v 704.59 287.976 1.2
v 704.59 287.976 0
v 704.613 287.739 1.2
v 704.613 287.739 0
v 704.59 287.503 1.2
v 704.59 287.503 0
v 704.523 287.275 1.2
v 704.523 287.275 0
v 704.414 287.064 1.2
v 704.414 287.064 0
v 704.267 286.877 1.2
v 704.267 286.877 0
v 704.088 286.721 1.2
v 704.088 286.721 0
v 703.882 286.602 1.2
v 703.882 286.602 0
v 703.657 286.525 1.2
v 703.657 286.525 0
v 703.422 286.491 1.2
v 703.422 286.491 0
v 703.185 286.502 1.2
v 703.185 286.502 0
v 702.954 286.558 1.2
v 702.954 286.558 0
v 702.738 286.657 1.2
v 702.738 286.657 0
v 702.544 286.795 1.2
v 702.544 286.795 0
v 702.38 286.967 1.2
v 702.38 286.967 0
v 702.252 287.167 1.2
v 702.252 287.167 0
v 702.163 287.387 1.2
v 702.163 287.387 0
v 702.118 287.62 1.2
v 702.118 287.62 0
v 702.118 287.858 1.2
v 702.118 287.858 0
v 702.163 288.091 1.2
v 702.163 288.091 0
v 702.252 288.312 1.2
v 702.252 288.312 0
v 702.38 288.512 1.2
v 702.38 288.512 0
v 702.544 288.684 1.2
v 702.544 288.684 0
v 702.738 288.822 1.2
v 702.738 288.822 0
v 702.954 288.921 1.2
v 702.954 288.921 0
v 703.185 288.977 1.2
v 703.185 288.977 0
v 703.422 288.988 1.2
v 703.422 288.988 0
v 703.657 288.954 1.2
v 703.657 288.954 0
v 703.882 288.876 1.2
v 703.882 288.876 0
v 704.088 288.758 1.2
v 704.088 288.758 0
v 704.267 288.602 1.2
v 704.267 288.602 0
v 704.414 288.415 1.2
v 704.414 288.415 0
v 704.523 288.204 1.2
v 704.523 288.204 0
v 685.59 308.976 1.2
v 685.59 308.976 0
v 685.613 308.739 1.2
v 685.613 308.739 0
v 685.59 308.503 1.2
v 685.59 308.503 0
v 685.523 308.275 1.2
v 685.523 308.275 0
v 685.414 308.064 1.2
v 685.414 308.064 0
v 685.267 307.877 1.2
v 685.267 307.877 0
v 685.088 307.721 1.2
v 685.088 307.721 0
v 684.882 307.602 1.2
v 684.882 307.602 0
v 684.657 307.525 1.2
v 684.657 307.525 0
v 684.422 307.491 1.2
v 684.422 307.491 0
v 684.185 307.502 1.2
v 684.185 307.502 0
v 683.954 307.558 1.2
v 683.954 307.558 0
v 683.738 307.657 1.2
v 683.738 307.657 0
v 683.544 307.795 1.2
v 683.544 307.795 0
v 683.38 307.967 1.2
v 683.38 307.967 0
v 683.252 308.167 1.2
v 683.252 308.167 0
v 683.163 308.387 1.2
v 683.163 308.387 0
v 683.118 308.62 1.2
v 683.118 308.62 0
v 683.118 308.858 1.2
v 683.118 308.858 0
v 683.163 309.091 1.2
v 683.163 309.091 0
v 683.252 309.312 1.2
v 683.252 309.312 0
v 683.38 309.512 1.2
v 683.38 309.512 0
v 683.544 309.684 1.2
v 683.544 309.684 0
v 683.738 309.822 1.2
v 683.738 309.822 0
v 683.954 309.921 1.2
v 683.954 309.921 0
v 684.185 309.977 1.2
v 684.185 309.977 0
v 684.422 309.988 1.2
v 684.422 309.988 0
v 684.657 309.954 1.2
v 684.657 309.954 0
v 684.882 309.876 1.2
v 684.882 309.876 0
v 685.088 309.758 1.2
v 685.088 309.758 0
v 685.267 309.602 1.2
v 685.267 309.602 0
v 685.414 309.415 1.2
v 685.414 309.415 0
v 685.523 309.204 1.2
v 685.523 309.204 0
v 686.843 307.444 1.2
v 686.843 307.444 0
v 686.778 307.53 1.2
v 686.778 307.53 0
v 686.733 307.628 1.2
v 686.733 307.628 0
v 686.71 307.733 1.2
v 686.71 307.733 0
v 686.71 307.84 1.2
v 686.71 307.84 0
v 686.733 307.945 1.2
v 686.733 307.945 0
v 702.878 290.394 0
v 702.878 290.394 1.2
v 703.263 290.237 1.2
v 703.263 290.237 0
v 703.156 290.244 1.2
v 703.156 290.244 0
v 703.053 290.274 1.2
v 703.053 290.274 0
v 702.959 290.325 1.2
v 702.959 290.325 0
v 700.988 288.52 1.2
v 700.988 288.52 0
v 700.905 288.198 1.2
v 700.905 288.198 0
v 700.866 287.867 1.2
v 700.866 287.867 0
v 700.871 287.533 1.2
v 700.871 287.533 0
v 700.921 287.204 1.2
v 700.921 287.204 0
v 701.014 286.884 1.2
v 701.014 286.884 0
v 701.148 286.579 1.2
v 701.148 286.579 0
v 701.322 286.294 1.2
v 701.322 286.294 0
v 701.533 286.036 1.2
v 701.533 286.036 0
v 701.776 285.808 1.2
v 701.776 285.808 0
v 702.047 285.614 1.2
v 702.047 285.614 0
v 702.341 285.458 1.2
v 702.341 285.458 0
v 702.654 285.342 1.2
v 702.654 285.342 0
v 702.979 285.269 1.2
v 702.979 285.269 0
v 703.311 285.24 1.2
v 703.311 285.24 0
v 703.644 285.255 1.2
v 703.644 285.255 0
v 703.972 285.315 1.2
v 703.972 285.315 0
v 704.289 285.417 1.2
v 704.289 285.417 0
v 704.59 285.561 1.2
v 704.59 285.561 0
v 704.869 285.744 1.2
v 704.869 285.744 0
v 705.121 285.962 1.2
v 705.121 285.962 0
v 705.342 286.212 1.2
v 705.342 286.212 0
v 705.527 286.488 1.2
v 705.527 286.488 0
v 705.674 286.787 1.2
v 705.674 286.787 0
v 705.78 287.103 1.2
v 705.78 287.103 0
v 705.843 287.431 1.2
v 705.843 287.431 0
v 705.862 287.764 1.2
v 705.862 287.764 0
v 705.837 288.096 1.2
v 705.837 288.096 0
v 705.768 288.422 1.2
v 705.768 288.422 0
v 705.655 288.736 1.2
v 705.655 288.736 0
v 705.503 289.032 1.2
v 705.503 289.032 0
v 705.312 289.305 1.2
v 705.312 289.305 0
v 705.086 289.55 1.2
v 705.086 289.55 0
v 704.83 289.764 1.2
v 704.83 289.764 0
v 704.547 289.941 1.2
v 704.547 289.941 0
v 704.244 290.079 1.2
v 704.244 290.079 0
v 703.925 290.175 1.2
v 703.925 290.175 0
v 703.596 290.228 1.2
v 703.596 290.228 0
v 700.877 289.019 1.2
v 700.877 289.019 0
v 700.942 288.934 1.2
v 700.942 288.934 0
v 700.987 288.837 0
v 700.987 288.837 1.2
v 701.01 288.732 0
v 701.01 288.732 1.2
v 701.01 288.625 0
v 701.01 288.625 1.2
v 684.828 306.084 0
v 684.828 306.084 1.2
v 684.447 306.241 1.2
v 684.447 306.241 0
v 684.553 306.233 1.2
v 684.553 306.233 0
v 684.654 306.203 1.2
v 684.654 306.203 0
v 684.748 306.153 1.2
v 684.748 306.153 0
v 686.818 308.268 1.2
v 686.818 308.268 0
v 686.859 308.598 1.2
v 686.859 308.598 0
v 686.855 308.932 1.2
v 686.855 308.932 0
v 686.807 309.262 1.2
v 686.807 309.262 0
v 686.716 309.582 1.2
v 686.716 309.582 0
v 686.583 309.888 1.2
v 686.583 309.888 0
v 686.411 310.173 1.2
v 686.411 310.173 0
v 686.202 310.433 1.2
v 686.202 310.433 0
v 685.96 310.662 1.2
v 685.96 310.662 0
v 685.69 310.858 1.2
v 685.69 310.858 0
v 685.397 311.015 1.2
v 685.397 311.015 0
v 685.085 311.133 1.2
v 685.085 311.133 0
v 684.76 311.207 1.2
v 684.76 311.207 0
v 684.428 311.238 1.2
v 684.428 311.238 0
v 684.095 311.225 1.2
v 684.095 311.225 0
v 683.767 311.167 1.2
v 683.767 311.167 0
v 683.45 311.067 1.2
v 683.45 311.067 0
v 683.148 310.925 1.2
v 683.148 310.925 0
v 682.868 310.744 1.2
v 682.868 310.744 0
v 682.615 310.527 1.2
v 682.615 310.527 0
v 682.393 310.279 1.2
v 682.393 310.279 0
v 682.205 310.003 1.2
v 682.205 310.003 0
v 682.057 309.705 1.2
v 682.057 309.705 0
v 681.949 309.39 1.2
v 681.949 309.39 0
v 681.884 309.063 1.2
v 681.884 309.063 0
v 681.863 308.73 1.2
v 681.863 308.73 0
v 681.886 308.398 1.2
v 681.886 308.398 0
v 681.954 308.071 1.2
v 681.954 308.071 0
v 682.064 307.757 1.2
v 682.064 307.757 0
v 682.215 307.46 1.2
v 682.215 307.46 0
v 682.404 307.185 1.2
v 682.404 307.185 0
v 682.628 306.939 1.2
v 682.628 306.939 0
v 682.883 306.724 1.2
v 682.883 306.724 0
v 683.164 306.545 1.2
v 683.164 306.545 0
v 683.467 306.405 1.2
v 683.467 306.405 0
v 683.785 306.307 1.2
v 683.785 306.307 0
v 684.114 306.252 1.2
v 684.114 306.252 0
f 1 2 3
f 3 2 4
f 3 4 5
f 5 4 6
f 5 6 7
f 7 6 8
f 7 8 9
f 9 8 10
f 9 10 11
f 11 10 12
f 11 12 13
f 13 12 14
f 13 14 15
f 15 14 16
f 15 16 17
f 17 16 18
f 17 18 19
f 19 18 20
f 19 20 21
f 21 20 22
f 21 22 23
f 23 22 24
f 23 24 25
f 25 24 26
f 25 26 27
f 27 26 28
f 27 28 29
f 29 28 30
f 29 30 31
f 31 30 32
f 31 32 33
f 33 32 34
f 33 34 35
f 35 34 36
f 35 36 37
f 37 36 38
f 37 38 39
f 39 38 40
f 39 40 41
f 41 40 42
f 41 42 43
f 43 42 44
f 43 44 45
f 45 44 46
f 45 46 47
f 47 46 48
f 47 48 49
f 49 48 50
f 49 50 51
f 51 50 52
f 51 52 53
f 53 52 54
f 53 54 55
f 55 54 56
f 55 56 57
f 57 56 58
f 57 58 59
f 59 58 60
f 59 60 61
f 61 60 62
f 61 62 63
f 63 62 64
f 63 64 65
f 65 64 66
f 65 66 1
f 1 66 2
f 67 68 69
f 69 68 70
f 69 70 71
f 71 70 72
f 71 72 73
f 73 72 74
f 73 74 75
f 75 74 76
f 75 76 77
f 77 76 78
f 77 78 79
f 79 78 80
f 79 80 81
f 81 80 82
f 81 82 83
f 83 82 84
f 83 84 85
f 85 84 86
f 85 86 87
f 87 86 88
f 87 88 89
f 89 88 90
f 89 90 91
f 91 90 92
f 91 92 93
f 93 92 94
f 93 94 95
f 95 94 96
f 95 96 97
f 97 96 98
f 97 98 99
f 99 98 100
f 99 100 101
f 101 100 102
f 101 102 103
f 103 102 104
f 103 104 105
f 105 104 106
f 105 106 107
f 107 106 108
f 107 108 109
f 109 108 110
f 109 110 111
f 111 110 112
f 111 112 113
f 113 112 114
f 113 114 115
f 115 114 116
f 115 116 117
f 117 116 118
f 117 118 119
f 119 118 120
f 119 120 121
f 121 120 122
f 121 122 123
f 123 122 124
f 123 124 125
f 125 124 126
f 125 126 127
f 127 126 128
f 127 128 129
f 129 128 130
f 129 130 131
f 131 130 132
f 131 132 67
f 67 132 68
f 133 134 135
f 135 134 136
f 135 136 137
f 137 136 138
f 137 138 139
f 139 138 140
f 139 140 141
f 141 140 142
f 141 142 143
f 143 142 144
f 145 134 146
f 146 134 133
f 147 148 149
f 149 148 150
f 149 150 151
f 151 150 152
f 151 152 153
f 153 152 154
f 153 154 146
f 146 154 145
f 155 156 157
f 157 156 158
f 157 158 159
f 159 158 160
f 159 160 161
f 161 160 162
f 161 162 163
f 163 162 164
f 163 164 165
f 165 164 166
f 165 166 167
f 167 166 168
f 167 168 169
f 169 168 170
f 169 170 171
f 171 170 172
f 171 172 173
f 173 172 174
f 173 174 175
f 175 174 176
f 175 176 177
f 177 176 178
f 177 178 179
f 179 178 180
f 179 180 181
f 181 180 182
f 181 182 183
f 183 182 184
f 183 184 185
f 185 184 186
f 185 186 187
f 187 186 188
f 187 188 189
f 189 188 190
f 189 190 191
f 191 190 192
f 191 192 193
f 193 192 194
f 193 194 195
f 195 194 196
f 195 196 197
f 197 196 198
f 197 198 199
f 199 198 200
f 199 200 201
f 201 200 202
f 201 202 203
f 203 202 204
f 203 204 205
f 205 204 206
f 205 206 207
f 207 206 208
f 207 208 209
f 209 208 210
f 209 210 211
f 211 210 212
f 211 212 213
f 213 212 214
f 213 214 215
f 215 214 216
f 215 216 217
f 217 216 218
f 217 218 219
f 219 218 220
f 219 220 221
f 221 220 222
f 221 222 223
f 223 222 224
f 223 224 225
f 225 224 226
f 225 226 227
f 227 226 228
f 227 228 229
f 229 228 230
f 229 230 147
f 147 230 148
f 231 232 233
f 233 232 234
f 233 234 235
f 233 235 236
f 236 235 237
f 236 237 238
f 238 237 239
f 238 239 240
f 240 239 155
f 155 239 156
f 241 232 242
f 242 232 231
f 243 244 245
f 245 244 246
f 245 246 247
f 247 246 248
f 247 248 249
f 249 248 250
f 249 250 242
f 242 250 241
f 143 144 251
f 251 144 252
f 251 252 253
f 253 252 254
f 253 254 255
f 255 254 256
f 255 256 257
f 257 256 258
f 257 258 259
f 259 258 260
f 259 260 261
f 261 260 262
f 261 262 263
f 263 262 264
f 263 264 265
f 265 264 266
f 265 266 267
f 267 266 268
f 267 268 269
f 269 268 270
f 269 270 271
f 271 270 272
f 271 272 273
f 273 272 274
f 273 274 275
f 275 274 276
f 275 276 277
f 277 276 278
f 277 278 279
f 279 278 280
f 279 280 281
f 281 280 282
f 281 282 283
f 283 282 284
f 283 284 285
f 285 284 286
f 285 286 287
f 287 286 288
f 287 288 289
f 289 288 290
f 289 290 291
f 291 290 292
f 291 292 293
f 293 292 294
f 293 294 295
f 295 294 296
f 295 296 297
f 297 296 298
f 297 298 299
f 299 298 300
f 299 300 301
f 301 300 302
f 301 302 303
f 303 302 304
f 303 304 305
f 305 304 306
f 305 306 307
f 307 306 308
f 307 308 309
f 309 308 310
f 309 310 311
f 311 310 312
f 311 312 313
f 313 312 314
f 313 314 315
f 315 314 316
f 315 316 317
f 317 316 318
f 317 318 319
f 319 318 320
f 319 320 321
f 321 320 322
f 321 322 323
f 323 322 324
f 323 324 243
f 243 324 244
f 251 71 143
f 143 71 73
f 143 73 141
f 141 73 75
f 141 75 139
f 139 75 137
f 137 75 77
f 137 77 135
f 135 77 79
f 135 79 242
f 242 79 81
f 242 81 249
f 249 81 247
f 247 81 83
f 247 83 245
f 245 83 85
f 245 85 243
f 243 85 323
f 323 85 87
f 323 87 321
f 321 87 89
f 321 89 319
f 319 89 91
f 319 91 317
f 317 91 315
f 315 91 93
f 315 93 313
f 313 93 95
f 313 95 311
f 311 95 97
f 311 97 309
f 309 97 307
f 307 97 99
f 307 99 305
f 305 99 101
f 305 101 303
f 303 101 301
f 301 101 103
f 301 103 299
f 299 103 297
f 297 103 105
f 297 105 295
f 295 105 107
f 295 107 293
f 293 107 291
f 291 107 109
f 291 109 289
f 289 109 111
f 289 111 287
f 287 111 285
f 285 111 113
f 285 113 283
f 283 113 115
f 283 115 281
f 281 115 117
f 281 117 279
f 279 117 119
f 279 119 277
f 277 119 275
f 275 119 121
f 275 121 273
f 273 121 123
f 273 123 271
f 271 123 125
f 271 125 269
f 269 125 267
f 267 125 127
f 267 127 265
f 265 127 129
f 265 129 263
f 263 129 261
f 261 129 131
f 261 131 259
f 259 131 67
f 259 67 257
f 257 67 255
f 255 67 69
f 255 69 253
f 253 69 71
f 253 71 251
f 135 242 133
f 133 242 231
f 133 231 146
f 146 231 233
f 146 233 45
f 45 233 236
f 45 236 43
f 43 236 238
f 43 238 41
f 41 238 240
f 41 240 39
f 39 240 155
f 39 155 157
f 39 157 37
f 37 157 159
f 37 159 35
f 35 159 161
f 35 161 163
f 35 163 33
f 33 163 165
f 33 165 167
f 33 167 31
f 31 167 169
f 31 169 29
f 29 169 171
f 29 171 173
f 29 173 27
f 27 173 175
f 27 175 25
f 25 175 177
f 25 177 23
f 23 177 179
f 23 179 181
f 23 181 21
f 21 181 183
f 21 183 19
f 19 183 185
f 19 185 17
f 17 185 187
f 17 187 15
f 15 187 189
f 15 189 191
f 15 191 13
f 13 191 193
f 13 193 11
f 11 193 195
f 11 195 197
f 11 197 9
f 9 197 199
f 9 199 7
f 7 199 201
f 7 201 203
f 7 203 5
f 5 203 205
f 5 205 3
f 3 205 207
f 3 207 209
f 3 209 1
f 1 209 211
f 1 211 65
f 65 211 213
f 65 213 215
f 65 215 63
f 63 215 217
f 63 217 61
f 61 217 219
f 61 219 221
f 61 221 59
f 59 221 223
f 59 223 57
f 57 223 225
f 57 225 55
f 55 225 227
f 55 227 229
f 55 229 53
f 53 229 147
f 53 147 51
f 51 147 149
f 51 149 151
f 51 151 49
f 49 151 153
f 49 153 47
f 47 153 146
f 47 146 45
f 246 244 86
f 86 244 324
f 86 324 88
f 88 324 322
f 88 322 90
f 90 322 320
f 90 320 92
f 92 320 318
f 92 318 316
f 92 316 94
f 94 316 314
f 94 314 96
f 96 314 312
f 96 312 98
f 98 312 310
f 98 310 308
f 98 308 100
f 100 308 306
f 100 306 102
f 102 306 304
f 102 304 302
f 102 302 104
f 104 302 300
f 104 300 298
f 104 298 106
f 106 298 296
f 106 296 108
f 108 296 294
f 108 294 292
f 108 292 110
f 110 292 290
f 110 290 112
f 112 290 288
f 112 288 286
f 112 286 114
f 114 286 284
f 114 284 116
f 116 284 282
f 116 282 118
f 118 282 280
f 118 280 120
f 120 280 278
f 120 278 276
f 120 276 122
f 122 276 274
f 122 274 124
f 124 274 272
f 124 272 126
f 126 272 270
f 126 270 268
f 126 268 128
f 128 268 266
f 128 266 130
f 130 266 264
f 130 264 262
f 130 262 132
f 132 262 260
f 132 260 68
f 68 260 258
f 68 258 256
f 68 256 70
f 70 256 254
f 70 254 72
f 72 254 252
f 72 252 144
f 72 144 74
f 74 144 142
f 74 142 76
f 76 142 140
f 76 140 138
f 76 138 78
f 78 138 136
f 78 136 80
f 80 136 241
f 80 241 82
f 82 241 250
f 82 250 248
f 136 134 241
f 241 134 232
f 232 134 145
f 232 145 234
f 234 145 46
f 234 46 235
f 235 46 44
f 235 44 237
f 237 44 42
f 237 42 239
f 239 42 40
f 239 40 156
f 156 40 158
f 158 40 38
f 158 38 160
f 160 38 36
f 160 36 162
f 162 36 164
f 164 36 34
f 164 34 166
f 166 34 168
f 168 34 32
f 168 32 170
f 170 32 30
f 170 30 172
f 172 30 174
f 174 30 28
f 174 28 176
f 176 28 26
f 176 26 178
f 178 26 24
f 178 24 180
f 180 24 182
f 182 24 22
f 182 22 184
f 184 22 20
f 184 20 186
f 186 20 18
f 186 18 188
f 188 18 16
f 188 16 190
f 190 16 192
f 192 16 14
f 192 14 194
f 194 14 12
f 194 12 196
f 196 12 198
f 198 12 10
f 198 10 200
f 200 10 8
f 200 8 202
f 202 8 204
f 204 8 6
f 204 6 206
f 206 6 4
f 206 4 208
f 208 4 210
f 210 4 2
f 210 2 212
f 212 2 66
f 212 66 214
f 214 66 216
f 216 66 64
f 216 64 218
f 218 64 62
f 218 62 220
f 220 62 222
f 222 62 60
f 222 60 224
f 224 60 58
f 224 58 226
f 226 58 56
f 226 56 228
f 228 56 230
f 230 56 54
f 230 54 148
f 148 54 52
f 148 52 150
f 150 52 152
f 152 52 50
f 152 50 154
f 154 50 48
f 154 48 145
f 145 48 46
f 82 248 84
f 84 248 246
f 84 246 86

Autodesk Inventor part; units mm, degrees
ref_plane "YZ Plane" through (0, 0, 0) normal (1, 0, 0) x (0, 1, 0)
ref_plane "XZ Plane" through (0, 0, 0) normal (0, 1, 0) x (-1, 0, 0)
ref_plane "XY Plane" through (0, 0, 0) normal (0, 0, 1) x (1, 0, 0)
sketch "Boceto1" plane through (0, 0, 0) normal (0, 0, 1) x (1, 0, 0)
  circle A0 centre (684.3626, 308.7393) radius 1.25
  arc A1 (686.7332, 307.9454) -> (684.4469, 306.2407) centre (684.3626, 308.7393) ccw
  circle A2 centre (703.3626, 287.7393) radius 1.25
  arc A3 (700.9878, 288.5205) -> (703.2626, 290.2373) centre (703.3626, 287.7393) ccw
  line L0 (684.3626, 308.7393) -> (703.3626, 287.7393) construction
  line L1 (689.4053, 303.1658) -> (691.9544, 305.4721) construction
  line L2 (686.8431, 307.4441) -> (702.8784, 290.3944)
  line L3 (684.828, 306.0836) -> (700.877, 289.0192)
  arc A4 (702.8784, 290.3944) -> (703.2626, 290.2373) centre (703.2426, 290.7369) ccw
  arc A5 (700.9878, 288.5205) -> (700.877, 289.0192) centre (700.5128, 288.6767) ccw
  arc A6 (686.7332, 307.9454) -> (686.8431, 307.4441) centre (687.2073, 307.7866) ccw
  arc A7 (684.828, 306.0836) -> (684.4469, 306.2407) centre (684.4637, 305.741) ccw
  point P0 (0, 0)
  point P1 (685.216, 309.1769)
  point P2 (703.1674, 288.8662)
  point P3 (683.8421, 307.9339)
  point P4 (702.2609, 288.0459)
  point P5 (686.6251, 307.6758)
  point P6 (684.6643, 306.2576)
  point P7 (701.0936, 288.7889)
  point P8 (703.0435, 290.2189)
  dimension "d7" = 2.5
  dimension "d8" = 5
  dimension "d10" = 5
  dimension "d11" = 19
  dimension "d12" = 21
  dimension "d14" = 2.4
  dimension "d15" = 0.5
extrude "Extrusión1" add sketch "Boceto1" along normal blind 1.2
properties part number "Pieza8_3DPrint"
